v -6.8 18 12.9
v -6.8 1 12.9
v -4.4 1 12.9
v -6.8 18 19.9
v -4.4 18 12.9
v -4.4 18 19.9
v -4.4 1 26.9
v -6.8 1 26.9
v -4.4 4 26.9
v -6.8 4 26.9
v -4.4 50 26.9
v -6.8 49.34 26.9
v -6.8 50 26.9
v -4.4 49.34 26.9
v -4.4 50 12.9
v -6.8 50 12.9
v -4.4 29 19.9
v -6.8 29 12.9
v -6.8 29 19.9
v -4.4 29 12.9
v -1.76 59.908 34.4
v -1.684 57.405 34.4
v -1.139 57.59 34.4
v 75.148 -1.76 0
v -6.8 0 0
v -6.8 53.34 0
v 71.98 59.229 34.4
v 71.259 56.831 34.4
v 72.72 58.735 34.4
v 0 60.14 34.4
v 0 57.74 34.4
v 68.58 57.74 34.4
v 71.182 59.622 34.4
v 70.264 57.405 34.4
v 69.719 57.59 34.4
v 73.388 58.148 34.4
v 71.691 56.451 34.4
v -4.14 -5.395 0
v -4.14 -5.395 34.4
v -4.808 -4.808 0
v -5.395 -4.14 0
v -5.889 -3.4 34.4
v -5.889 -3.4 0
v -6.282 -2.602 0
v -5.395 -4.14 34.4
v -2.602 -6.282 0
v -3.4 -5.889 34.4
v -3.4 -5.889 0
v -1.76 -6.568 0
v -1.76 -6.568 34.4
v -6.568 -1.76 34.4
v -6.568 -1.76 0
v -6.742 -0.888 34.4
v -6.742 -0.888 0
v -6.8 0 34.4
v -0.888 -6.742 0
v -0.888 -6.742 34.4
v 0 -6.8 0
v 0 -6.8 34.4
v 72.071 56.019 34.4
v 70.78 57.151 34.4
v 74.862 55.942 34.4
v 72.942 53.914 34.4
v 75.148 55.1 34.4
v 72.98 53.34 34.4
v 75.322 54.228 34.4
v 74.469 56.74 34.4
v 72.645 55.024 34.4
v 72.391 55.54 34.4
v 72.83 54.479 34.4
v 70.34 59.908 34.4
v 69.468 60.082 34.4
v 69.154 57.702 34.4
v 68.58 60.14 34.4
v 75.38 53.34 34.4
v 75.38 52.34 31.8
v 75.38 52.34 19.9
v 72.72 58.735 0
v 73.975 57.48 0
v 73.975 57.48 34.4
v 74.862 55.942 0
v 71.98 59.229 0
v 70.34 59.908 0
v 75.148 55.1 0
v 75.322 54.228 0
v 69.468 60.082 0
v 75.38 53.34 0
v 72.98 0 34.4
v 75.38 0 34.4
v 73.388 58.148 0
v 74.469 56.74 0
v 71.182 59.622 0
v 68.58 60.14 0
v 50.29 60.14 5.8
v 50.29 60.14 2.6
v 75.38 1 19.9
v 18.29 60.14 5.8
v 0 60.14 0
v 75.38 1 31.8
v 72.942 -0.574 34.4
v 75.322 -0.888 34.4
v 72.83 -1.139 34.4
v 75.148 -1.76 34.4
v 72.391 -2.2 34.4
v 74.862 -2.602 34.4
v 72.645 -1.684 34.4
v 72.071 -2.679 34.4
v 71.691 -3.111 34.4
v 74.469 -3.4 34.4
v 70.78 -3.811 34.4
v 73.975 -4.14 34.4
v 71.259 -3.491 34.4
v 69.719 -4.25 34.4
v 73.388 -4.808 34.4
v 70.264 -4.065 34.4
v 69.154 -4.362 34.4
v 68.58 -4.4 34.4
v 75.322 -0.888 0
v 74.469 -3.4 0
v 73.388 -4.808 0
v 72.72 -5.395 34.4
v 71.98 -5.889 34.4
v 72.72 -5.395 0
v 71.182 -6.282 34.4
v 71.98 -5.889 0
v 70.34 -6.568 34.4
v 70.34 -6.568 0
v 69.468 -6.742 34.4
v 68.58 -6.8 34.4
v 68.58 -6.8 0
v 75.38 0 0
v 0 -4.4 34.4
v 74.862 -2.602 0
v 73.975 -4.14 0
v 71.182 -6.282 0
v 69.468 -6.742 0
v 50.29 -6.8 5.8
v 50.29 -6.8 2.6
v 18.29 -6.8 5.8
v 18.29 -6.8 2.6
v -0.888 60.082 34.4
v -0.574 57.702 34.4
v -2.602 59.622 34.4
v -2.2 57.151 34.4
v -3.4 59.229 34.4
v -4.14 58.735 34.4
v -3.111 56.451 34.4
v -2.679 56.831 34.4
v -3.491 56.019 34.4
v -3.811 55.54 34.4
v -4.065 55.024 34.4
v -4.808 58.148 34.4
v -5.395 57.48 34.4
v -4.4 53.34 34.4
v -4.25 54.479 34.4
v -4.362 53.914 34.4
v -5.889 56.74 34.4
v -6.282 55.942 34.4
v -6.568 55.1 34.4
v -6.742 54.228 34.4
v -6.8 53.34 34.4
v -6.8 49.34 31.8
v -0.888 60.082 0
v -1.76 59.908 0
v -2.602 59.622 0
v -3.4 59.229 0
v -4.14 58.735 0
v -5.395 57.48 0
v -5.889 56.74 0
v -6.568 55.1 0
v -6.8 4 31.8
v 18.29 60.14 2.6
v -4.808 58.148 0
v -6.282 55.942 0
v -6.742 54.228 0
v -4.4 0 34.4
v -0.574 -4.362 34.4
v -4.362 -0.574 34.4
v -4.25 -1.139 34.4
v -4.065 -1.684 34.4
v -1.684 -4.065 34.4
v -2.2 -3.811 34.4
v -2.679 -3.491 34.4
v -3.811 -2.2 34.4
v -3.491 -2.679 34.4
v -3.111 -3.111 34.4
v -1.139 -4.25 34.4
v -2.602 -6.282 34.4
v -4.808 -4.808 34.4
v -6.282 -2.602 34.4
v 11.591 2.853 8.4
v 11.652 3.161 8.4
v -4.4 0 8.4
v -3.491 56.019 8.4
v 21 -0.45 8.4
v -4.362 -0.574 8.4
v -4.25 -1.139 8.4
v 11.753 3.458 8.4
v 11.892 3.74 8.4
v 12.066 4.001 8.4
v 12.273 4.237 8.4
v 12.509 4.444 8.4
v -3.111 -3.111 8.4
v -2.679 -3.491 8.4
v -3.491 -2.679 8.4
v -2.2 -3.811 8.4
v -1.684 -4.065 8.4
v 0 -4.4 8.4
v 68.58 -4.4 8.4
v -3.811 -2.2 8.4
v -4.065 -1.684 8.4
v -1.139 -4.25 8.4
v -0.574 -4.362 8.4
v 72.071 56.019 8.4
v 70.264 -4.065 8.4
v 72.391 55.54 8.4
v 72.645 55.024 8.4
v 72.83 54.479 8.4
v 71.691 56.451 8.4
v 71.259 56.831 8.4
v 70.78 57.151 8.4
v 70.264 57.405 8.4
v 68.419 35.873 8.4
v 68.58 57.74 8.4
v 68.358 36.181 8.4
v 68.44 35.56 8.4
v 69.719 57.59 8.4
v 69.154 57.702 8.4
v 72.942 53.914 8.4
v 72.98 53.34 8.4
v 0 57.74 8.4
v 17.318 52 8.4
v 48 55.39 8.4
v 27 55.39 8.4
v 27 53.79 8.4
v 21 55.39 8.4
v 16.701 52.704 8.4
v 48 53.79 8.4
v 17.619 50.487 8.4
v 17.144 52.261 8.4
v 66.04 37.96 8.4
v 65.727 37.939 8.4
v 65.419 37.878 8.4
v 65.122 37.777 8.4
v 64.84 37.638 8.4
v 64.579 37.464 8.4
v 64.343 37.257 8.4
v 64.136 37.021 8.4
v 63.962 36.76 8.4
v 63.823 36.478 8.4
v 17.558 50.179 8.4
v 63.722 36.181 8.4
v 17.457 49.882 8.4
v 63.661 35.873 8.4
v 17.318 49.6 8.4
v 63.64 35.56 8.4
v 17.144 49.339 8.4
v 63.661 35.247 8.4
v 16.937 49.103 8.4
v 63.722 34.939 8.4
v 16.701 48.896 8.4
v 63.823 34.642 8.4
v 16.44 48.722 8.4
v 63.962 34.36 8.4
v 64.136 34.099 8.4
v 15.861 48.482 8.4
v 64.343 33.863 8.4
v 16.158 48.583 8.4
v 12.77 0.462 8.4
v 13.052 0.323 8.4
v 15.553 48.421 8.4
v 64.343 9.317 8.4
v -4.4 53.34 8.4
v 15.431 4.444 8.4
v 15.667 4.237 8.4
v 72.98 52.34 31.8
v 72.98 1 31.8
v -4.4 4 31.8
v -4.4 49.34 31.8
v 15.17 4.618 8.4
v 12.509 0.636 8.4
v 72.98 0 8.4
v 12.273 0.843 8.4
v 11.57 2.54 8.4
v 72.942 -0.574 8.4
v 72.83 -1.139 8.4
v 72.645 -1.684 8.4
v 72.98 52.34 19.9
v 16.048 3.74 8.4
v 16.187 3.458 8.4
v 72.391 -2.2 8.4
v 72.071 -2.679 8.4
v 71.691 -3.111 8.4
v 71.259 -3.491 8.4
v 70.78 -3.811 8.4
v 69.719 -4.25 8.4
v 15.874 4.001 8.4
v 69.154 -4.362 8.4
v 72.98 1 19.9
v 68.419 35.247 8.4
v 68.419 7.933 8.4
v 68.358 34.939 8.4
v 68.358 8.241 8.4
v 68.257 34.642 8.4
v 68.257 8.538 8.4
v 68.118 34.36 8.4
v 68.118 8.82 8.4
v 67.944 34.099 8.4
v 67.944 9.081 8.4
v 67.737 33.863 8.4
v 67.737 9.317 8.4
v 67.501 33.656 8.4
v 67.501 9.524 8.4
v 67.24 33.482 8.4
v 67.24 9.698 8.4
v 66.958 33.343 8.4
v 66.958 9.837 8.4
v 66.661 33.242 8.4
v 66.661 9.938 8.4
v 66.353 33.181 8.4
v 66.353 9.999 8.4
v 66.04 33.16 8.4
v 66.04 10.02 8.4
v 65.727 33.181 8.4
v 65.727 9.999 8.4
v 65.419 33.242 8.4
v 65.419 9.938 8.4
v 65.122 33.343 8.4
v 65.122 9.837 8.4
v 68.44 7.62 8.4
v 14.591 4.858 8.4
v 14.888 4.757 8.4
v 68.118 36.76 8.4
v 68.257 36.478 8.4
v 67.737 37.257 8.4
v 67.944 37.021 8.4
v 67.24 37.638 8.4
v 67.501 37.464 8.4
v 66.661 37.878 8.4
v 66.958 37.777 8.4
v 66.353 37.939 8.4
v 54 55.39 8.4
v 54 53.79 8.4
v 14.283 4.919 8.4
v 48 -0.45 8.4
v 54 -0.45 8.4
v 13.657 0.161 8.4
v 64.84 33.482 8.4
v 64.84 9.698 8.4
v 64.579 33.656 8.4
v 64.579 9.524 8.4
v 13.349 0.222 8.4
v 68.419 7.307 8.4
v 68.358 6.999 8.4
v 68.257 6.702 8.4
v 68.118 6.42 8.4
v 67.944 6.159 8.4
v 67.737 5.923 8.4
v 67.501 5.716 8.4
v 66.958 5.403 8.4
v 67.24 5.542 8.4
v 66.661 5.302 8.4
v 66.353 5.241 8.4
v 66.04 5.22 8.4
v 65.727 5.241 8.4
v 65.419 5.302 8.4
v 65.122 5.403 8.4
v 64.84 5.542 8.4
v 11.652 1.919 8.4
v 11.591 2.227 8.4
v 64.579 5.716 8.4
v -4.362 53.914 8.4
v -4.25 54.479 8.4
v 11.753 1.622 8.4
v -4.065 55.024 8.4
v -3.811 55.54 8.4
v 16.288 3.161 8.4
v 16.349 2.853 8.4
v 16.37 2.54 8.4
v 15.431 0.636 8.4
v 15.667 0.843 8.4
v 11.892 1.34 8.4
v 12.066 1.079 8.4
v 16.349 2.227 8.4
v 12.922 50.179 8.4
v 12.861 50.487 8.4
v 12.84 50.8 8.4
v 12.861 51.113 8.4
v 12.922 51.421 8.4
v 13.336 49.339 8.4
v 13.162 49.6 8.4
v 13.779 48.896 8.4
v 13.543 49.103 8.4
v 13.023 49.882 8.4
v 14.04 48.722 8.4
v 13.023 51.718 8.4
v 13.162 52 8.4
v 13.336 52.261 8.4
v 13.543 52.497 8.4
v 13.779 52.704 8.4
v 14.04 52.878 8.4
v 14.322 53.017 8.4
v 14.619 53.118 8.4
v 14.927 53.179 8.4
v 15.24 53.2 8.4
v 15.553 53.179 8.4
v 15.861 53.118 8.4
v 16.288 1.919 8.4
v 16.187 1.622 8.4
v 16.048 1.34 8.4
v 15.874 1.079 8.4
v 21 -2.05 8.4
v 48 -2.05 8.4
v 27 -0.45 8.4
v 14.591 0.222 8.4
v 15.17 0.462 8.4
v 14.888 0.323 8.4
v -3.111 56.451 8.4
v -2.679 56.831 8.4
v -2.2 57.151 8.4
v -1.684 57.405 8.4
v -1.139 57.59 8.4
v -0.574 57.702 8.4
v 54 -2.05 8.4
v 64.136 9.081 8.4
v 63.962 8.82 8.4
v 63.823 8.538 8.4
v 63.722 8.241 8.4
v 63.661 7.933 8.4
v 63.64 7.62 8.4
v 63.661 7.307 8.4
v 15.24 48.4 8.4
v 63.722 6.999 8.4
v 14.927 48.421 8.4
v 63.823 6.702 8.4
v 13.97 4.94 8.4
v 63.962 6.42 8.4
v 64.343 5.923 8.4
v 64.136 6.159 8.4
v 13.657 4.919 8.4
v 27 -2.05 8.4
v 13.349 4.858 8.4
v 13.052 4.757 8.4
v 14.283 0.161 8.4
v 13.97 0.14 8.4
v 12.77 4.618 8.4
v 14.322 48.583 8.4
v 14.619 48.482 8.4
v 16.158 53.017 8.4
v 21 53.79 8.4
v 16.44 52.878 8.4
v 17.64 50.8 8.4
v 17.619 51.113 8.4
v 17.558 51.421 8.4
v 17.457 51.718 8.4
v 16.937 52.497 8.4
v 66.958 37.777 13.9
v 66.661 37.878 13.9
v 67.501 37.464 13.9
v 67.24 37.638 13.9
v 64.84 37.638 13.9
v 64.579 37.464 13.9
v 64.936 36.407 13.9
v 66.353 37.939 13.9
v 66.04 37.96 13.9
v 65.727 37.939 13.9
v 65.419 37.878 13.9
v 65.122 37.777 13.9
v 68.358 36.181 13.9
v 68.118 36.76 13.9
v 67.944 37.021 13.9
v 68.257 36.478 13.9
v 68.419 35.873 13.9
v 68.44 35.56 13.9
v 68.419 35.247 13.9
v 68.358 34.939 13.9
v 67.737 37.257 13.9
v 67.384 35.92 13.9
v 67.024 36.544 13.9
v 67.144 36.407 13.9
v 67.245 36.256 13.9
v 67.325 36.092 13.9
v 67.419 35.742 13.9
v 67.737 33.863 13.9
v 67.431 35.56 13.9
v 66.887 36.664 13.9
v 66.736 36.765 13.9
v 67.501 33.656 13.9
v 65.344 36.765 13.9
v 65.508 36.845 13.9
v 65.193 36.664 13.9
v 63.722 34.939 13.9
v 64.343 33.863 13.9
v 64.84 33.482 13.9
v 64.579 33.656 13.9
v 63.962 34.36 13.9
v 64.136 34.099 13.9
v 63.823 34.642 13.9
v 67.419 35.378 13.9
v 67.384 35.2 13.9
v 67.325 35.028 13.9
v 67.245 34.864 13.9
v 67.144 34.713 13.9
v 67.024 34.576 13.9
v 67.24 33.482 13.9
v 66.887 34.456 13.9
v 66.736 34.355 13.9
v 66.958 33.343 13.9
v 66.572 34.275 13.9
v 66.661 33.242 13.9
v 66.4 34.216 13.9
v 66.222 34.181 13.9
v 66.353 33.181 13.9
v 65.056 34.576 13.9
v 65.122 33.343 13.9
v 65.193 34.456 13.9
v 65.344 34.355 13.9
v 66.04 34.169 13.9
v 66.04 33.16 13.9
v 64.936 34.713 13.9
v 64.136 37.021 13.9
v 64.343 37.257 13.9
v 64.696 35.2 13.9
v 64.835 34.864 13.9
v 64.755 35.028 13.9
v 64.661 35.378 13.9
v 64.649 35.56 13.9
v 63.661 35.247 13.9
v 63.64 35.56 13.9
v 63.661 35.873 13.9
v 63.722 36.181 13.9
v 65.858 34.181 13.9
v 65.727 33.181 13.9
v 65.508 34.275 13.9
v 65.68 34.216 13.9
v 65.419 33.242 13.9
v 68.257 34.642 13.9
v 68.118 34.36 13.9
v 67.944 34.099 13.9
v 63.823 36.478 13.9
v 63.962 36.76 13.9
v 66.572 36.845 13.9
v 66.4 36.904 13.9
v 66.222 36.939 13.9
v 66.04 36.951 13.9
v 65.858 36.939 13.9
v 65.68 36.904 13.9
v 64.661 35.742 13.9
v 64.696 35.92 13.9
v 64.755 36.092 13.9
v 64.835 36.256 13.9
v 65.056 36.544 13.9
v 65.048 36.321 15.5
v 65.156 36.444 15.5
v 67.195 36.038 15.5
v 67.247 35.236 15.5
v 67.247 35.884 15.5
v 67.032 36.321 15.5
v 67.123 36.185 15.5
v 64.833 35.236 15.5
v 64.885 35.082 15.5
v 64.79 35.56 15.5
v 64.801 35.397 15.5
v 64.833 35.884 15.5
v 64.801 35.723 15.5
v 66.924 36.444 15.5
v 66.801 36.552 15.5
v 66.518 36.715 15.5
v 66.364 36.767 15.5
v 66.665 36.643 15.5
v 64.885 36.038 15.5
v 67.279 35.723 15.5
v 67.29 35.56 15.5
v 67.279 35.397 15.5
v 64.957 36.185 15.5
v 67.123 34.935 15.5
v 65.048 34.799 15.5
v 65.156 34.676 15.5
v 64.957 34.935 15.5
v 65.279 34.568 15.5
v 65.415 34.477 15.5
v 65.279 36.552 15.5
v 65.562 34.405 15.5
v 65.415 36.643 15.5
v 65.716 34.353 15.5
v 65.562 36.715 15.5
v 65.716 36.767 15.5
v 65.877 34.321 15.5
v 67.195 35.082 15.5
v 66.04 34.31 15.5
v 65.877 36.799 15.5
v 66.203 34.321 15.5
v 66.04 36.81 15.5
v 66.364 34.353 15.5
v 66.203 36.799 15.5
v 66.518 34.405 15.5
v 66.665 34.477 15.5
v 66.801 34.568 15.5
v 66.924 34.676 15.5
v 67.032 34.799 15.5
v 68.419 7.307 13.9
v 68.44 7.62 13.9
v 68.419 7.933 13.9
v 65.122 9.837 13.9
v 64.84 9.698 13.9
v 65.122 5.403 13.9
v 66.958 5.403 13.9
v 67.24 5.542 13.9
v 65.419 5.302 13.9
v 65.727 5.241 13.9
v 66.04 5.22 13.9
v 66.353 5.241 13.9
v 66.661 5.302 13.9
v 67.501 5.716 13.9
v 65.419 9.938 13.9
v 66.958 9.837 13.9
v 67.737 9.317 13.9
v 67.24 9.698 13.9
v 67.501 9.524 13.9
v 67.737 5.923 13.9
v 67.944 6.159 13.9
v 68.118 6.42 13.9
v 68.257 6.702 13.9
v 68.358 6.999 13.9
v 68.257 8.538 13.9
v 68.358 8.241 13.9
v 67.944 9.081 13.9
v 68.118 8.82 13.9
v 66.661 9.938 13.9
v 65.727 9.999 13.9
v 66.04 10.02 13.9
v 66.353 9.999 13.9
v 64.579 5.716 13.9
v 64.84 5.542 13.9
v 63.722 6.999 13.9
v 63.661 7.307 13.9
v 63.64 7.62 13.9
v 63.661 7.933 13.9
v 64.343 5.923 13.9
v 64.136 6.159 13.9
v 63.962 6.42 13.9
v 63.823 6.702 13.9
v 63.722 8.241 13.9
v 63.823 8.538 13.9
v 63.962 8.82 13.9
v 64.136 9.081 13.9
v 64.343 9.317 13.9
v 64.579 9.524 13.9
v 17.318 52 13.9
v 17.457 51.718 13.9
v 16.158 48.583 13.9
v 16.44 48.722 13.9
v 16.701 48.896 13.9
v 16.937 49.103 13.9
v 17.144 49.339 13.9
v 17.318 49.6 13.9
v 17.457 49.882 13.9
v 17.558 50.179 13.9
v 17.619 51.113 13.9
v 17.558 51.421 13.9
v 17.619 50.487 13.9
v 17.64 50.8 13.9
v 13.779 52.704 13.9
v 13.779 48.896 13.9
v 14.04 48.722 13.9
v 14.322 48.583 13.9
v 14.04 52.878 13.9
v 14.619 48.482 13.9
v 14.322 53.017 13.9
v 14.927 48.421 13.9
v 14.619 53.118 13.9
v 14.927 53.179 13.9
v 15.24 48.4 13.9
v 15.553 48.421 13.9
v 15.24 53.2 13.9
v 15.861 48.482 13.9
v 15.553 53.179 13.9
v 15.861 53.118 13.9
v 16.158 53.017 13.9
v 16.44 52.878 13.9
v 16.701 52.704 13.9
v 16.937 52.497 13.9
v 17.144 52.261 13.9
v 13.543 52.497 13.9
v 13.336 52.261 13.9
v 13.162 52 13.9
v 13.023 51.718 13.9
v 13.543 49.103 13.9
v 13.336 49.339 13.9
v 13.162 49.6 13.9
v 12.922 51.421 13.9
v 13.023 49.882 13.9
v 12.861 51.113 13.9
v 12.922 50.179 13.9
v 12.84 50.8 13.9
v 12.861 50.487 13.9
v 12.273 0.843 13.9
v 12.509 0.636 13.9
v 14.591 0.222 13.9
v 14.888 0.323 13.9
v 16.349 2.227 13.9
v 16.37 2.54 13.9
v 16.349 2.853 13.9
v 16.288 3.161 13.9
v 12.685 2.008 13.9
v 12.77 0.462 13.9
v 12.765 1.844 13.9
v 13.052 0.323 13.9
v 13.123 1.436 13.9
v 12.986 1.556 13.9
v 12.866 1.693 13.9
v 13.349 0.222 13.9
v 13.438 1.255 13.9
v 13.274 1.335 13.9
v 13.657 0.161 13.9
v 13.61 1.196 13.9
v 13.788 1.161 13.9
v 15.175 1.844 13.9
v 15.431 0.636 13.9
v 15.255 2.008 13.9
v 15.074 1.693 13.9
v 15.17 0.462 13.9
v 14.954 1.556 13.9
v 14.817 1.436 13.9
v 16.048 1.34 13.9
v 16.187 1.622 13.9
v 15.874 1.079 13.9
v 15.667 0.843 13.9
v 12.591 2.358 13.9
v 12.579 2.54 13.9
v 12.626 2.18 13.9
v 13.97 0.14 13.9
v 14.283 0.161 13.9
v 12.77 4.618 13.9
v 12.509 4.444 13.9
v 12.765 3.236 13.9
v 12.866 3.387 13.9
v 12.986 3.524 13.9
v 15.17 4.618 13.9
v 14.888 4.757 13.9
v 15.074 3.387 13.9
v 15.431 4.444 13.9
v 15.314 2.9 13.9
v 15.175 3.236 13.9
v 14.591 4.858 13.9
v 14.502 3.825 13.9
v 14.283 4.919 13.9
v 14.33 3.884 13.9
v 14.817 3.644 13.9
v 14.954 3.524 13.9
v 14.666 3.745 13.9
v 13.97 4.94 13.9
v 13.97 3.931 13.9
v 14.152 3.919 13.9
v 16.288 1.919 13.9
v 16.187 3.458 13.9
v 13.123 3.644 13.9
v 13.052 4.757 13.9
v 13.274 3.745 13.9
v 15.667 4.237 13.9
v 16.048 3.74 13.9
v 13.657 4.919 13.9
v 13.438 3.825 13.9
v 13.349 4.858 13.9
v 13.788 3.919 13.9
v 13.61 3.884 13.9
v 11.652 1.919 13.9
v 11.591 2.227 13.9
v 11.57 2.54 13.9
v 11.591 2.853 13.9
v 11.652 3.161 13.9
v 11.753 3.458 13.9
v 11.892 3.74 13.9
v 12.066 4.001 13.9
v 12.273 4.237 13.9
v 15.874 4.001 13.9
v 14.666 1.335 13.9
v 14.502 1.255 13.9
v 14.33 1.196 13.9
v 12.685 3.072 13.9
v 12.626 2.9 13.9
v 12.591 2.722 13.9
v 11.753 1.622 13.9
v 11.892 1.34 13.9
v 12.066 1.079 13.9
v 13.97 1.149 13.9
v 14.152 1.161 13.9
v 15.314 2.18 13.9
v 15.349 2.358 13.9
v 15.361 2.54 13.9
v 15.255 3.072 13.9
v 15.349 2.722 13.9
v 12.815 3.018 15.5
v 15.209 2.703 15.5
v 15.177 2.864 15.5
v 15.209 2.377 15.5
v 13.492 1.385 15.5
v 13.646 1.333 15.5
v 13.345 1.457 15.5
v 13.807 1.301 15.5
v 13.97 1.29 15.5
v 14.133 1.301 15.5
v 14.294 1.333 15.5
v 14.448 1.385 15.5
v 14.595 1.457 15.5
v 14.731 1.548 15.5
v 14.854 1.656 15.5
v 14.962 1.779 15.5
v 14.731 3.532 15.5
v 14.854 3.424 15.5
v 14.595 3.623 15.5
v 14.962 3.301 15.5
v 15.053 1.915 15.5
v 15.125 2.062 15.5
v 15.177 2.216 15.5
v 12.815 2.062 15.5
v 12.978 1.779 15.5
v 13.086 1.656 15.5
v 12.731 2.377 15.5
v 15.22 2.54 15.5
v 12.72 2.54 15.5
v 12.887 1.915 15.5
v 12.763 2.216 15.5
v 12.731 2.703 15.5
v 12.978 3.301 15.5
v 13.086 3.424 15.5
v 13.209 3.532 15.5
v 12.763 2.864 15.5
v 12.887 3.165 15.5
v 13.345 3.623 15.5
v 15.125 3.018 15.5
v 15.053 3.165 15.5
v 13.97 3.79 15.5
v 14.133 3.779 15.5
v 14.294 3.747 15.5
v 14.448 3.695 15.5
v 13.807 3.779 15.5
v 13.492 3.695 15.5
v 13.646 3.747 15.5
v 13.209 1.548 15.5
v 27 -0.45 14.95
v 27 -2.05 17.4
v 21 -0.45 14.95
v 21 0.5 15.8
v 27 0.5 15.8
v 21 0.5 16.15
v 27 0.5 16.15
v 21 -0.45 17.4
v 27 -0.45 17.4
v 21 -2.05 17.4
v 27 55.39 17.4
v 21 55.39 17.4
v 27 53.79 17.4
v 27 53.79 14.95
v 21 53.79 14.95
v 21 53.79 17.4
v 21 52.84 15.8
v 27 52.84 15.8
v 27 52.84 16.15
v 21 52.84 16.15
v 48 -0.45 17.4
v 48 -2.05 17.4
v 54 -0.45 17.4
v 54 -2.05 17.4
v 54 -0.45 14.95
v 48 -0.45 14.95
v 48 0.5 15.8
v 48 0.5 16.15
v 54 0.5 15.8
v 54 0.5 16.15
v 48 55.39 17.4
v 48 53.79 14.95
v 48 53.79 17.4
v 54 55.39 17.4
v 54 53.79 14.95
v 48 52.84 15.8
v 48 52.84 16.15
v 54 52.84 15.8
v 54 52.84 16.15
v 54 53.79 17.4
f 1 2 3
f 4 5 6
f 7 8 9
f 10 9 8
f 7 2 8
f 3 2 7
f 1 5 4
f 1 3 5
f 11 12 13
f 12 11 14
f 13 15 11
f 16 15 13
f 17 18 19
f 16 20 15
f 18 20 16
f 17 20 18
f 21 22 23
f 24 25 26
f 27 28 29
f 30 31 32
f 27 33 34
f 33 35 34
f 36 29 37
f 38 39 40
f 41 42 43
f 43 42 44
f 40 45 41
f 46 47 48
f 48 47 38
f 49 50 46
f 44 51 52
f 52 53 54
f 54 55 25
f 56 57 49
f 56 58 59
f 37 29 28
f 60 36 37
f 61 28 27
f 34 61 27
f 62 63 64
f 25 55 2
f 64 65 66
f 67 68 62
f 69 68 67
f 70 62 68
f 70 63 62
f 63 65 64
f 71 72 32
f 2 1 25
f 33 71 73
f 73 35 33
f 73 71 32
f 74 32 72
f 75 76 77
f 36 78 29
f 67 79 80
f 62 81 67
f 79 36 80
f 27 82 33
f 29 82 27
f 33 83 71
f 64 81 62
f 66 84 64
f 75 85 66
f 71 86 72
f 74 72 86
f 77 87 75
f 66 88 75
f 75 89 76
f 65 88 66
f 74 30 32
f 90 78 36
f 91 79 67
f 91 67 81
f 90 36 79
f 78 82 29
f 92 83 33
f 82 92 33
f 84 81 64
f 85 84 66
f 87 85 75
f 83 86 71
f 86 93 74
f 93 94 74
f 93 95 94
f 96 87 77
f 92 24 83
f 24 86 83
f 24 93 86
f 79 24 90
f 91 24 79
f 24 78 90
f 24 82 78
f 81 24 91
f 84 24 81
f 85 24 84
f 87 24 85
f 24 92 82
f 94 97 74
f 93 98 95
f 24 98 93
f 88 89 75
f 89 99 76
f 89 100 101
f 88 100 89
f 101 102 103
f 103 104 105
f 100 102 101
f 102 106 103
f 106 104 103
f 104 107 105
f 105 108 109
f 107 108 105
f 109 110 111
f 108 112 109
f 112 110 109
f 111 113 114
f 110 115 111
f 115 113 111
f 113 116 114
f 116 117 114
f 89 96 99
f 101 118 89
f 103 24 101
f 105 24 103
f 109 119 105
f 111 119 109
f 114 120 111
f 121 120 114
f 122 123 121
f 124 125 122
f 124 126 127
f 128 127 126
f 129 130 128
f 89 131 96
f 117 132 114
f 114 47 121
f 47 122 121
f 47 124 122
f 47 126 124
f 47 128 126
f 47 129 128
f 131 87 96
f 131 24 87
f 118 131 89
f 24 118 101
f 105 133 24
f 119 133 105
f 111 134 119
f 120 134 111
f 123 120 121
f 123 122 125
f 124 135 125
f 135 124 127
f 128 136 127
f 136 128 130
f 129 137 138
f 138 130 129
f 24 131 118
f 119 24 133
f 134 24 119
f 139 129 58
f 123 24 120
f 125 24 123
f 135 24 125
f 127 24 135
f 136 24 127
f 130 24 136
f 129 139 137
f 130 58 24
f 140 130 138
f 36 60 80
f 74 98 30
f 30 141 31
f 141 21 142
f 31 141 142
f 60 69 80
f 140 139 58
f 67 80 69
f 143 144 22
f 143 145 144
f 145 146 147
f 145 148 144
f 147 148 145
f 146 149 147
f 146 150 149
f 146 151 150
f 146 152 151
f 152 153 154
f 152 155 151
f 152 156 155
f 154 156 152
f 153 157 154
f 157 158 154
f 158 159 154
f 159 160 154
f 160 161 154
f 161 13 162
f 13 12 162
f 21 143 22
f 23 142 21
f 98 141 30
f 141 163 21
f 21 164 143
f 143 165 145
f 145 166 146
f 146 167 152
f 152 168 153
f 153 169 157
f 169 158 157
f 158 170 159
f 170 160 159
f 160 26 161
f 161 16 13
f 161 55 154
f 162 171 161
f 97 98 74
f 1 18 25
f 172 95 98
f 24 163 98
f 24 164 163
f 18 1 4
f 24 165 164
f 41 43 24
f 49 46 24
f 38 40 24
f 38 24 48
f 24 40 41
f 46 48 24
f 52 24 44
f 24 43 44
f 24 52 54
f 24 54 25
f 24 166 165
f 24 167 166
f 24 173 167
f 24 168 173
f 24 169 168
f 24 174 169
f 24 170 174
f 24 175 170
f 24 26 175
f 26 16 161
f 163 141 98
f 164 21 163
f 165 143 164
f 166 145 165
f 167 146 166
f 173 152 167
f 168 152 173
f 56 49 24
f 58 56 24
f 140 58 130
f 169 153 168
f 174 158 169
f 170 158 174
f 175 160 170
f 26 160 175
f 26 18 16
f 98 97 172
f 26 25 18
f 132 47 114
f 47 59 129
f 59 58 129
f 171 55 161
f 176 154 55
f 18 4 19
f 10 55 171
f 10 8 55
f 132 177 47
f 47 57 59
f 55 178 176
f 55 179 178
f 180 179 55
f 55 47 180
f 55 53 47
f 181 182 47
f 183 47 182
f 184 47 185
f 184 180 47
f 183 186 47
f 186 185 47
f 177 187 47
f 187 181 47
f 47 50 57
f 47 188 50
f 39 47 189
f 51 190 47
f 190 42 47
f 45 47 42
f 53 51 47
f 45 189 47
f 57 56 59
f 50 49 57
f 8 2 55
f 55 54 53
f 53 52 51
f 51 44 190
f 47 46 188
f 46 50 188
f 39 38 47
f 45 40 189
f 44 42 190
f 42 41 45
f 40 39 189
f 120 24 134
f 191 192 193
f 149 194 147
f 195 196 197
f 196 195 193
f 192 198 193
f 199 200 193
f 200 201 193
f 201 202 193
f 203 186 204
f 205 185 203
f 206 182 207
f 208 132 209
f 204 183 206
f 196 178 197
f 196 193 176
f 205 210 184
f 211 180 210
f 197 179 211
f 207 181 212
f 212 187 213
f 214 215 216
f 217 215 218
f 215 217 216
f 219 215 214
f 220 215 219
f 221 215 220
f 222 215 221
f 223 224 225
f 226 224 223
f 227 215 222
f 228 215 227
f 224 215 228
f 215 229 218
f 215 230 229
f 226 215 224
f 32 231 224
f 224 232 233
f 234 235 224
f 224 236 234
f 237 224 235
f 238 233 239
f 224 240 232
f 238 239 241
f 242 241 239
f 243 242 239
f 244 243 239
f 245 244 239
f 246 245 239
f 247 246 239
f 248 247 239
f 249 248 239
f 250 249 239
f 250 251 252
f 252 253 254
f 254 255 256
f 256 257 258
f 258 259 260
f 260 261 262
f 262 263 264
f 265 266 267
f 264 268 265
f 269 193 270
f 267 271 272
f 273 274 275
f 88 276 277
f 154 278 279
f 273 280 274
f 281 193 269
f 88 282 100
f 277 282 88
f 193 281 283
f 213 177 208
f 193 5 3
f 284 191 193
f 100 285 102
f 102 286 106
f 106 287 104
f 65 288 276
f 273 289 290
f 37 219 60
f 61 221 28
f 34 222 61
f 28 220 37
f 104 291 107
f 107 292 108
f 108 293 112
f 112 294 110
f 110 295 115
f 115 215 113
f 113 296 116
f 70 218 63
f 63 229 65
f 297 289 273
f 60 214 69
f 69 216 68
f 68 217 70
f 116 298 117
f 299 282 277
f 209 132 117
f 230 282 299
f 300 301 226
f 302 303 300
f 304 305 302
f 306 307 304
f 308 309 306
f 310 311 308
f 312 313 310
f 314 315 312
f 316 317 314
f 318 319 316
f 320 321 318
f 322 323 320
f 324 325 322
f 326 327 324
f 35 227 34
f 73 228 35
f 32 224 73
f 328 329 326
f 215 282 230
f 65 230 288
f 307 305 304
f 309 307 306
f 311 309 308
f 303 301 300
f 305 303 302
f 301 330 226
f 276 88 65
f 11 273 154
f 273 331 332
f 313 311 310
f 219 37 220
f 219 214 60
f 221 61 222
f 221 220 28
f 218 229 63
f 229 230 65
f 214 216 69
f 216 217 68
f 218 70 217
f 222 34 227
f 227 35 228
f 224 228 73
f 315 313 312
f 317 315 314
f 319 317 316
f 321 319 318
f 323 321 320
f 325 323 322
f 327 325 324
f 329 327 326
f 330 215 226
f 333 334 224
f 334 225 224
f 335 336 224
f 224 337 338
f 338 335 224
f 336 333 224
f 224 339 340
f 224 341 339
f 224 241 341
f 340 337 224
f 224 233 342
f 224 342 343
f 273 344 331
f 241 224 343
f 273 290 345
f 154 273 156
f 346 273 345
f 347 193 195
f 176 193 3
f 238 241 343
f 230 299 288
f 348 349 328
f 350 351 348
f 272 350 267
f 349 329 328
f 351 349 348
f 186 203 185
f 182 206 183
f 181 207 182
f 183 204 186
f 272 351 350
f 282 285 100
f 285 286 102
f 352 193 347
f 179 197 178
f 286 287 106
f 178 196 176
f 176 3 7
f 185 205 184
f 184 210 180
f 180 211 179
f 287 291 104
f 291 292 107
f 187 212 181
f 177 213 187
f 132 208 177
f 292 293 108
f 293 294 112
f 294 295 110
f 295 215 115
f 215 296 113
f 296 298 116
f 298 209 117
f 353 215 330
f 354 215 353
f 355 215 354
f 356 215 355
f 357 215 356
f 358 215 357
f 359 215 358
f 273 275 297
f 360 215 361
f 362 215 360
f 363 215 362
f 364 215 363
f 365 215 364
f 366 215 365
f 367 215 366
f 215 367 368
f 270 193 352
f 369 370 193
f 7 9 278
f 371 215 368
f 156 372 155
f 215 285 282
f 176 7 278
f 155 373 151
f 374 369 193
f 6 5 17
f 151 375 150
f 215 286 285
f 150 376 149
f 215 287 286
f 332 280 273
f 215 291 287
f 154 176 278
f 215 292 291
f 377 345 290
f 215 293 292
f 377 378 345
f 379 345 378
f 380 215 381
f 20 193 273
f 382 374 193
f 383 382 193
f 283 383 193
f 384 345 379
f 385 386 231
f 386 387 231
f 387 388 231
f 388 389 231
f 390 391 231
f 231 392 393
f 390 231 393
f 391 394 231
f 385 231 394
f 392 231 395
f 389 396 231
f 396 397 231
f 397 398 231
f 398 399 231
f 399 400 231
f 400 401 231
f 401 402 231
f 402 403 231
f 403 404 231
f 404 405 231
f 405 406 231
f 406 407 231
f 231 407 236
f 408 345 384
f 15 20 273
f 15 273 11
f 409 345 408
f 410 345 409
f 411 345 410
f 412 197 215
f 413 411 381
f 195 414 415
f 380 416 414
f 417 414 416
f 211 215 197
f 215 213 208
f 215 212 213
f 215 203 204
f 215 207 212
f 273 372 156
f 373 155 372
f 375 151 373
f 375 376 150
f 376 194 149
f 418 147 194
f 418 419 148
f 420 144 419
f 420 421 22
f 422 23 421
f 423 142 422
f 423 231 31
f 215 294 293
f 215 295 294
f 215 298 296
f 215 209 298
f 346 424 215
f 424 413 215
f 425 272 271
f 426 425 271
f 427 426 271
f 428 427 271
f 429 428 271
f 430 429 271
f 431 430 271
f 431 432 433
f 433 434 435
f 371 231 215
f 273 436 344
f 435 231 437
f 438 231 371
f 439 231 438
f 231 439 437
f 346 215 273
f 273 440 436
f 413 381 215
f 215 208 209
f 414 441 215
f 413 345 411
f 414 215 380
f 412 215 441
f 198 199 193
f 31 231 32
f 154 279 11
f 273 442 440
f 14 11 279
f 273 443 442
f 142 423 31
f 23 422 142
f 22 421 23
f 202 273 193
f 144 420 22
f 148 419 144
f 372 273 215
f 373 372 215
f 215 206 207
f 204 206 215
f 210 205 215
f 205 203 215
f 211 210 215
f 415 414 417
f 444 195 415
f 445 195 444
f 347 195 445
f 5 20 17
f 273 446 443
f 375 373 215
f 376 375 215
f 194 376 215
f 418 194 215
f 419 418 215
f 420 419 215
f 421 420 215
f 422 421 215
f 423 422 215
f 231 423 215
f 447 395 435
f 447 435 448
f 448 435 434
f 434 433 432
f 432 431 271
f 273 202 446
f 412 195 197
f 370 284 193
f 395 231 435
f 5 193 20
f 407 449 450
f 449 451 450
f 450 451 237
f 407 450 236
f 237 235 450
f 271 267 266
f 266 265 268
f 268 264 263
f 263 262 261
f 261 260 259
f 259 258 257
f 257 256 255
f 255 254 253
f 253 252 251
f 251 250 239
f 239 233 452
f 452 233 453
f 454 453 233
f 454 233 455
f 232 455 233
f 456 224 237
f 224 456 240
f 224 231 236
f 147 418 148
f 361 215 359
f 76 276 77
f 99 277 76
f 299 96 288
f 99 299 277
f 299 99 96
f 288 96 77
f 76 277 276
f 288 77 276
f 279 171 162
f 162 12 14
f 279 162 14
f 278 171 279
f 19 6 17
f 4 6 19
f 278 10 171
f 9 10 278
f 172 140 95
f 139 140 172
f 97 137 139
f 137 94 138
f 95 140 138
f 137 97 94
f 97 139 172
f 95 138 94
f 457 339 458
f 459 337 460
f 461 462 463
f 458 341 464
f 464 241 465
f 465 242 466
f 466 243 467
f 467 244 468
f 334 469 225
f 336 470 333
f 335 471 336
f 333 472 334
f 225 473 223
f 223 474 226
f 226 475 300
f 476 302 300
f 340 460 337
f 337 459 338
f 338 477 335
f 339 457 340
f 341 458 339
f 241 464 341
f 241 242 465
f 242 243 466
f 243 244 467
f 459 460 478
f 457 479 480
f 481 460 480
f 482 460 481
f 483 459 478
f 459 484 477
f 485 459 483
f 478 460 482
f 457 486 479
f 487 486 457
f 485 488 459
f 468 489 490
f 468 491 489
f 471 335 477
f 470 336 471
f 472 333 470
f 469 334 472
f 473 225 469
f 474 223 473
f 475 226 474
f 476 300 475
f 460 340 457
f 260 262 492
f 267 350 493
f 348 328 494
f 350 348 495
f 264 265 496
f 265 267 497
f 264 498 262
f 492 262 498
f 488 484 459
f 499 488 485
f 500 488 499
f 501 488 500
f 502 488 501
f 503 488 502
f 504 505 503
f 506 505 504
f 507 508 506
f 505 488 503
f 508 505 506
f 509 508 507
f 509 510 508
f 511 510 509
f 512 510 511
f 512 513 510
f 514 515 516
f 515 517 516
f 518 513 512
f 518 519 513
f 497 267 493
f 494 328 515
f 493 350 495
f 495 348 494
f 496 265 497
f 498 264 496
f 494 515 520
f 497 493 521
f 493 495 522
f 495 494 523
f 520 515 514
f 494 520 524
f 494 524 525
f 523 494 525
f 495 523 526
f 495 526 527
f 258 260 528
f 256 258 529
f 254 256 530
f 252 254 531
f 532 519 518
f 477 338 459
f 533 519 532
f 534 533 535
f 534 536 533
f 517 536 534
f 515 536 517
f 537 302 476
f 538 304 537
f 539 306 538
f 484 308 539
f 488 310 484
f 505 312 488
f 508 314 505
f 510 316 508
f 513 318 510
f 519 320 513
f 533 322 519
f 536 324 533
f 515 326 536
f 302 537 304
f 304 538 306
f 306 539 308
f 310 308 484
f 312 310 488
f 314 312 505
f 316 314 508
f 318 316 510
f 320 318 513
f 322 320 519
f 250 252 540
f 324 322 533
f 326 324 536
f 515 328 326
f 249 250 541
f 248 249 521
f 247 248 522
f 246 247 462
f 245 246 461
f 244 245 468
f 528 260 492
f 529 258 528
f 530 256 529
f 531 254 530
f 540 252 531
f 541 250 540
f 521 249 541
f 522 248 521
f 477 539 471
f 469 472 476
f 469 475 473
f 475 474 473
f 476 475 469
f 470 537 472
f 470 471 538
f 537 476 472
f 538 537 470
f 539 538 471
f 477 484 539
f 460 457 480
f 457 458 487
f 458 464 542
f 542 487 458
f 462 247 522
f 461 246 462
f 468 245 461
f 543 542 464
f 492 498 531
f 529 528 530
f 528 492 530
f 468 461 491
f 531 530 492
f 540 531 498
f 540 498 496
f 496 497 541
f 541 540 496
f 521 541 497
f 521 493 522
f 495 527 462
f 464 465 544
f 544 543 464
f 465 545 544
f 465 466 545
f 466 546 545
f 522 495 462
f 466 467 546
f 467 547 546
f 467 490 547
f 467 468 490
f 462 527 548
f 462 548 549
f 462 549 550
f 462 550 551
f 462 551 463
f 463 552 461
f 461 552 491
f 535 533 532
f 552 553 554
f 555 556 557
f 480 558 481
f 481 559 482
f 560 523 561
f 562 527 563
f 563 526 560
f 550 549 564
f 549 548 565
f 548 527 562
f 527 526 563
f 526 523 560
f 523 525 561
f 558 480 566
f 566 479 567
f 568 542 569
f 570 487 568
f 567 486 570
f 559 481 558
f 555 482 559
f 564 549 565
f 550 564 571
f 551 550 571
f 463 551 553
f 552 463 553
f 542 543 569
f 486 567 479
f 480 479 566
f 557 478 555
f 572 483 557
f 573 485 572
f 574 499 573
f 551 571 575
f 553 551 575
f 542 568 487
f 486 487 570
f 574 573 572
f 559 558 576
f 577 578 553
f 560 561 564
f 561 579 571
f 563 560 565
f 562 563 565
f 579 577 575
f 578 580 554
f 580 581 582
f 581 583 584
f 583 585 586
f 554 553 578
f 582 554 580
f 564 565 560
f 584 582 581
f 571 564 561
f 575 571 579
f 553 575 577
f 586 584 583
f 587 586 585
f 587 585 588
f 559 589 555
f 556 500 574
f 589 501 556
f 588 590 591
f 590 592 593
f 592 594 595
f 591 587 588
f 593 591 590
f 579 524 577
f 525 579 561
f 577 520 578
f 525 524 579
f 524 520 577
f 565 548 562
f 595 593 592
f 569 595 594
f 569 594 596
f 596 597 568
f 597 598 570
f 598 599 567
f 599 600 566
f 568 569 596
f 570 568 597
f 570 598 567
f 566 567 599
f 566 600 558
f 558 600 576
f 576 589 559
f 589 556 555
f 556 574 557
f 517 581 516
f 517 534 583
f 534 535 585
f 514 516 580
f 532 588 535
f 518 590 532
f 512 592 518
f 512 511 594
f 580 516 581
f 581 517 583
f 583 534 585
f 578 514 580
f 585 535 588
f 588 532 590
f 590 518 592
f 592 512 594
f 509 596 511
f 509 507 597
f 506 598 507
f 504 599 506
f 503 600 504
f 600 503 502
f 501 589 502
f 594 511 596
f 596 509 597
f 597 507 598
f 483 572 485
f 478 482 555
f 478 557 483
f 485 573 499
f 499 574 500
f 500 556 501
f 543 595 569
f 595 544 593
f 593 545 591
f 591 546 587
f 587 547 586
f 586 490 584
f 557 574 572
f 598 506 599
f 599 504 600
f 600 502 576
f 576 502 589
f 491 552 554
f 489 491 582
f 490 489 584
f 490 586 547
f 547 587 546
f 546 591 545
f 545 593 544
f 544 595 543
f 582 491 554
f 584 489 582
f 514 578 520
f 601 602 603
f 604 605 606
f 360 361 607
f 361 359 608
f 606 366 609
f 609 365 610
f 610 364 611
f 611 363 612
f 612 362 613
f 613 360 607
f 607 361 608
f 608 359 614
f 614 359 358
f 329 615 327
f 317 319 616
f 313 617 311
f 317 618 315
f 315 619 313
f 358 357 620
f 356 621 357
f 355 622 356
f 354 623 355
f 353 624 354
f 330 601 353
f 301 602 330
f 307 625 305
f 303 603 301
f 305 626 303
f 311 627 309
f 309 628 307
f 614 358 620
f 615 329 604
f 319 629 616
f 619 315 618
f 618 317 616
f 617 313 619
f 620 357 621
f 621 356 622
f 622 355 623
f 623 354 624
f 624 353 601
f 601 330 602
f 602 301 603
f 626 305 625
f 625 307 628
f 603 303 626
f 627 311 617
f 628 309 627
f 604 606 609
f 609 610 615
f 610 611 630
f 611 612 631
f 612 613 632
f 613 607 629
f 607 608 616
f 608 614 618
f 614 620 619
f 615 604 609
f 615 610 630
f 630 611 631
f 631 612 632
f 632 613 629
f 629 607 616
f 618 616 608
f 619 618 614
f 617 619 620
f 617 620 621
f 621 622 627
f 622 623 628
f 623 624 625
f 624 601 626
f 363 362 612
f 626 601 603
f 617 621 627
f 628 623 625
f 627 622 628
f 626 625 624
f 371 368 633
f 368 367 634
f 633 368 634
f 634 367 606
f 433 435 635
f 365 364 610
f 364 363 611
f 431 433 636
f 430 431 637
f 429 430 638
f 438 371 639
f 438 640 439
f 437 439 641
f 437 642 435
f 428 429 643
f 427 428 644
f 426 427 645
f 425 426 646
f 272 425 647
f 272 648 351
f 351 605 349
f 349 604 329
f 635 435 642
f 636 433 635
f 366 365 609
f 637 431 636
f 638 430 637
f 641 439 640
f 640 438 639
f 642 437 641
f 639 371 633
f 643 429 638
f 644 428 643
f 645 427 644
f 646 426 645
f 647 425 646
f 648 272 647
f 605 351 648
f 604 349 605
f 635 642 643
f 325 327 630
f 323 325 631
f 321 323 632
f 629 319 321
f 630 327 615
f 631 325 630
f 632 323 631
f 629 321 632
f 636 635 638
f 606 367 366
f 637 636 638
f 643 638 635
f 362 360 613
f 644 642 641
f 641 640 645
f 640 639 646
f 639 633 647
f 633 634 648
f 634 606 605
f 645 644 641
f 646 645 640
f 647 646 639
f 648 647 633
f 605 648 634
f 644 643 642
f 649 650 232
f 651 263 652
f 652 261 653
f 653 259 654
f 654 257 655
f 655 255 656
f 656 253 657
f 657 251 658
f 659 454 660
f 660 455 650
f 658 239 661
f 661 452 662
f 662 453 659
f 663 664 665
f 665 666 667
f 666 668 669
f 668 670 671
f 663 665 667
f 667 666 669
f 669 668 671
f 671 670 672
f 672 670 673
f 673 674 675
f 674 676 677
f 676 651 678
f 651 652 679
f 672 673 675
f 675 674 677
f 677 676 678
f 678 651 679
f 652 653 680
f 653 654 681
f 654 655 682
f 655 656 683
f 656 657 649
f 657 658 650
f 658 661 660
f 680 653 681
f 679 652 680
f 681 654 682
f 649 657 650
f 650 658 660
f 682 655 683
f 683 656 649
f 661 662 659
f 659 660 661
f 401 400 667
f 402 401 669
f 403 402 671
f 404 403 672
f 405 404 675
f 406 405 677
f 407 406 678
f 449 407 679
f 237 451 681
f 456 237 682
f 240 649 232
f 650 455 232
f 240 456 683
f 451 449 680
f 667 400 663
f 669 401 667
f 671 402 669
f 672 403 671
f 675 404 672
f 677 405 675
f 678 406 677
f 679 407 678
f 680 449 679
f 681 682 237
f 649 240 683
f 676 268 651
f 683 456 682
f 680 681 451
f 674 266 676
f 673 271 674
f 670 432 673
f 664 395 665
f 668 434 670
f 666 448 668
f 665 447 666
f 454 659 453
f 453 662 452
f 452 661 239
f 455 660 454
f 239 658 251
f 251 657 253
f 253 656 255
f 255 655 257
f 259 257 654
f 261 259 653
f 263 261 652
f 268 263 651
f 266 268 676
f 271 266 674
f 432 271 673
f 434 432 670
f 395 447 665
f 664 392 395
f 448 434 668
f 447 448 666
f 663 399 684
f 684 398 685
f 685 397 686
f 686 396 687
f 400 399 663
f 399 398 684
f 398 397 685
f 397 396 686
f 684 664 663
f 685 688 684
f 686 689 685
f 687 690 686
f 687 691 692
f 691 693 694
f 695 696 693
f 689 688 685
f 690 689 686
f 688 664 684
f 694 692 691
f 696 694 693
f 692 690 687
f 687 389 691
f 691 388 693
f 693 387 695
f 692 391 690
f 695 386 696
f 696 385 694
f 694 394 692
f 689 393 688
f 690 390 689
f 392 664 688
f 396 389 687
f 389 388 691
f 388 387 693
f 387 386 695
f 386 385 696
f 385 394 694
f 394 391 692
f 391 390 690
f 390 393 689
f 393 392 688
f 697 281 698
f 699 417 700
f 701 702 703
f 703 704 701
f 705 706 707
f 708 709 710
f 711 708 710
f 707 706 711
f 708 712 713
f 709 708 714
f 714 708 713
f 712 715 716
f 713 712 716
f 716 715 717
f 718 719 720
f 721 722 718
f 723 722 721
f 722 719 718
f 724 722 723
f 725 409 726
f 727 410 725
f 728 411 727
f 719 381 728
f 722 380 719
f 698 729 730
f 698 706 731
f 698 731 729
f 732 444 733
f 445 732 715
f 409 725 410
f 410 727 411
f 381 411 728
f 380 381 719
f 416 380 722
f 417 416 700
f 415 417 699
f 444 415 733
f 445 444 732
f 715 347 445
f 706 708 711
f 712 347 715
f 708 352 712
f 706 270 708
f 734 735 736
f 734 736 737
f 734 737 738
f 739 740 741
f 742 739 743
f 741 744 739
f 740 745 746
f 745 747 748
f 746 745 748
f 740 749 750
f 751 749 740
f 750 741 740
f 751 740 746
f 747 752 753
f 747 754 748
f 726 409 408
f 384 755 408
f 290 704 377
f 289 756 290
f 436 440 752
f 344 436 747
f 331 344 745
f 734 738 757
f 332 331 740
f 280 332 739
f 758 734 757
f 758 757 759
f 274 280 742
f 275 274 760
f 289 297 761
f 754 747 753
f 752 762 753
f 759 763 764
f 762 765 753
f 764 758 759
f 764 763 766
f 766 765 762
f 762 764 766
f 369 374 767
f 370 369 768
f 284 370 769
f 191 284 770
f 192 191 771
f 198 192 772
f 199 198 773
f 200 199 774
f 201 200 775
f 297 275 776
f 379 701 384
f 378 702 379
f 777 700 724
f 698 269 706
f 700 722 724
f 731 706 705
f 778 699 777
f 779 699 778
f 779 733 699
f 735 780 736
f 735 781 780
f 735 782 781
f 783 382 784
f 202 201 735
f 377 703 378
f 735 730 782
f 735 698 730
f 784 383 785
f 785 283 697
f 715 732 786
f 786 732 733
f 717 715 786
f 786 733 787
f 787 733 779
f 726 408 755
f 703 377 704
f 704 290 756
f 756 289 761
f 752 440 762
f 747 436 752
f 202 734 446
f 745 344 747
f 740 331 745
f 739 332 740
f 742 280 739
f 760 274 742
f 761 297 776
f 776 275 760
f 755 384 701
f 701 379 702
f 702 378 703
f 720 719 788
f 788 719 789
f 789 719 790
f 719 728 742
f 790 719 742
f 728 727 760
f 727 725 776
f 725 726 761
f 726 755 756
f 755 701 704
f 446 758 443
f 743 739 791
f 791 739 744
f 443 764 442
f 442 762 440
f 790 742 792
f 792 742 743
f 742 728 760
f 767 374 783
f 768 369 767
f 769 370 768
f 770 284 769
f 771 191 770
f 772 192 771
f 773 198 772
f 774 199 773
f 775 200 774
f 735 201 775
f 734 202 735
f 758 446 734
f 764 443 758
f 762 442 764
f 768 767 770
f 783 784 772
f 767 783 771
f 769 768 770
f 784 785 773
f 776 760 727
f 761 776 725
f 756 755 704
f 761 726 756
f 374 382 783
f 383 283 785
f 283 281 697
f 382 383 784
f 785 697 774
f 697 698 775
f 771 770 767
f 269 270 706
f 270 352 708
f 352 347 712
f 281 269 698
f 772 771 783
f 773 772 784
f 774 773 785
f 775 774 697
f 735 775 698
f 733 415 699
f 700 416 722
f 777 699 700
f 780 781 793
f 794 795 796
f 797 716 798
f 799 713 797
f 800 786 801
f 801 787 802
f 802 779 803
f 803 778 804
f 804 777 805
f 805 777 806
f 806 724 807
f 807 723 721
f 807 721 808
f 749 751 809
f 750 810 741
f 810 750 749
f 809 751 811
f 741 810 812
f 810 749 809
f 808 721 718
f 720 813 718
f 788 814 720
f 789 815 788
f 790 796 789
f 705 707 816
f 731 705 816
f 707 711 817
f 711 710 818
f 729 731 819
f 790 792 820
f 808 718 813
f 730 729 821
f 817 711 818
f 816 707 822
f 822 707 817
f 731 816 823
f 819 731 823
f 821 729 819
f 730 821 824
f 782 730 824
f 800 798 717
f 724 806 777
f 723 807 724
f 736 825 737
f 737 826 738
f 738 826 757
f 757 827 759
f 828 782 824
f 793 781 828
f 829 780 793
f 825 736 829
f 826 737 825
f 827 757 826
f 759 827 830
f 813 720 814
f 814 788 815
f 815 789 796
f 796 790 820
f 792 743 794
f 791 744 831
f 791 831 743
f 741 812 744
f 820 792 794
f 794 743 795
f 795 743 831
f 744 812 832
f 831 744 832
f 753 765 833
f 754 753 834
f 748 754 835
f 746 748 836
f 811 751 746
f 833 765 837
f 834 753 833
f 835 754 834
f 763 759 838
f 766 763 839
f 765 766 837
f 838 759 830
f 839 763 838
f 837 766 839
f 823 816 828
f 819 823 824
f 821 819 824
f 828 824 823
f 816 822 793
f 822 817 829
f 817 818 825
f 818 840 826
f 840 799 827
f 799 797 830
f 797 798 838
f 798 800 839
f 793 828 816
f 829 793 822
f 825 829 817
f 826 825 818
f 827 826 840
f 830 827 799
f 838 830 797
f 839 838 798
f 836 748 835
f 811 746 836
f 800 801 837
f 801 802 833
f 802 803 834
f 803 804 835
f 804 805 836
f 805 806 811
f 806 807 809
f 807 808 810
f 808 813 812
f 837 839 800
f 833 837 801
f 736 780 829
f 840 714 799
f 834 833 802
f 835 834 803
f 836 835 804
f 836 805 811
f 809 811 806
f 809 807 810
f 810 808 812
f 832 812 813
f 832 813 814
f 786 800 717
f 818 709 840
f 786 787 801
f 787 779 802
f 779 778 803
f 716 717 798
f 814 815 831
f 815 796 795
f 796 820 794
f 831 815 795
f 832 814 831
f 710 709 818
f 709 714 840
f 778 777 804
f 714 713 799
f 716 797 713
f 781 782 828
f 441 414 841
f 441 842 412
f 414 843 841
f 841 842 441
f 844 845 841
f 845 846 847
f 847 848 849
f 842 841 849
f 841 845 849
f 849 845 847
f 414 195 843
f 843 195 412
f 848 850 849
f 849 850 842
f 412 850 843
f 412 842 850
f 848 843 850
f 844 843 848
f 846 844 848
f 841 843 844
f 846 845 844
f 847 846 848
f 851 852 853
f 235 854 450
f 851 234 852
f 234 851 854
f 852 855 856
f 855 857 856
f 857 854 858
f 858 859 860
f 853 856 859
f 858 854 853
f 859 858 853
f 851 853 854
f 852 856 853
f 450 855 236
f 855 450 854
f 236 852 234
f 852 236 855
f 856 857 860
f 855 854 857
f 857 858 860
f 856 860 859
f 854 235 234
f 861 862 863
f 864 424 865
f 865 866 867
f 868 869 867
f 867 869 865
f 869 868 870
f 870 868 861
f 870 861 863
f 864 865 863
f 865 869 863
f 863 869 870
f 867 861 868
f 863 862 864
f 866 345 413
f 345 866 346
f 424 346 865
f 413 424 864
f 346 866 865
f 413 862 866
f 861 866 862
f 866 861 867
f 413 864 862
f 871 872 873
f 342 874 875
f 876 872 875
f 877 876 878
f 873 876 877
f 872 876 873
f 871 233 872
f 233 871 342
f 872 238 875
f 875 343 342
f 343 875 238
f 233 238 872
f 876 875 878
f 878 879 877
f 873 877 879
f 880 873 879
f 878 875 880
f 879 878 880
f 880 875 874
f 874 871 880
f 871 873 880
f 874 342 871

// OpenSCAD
// UNO Rev3, PCB de 1.6 mm nominal. El shield permanece por encima de las uñas.
// Túnel dorsal transversal para una correa de extremo libre. Imprimir sobre la base.
// Fuente de los centros de los agujeros: UNO-TH_Rev3e.brd, Arduino.
ancho_correa = 30;
grosor_correa = 2;
largo = 68.58;
ancho = 53.34;
grosor_placa = 1.6;
altura_apoyo = 5.5;
juego_lateral = 0.45;
grosor_una = 1.6;
$fn = 48;
// Espacio detrás de las uñas para flexionar al insertar el Uno.
espacio = 4.4;
pared = 2.4;
margen = espacio + pared;
alto_pared = 26; // Desde el piso interior hasta el borde frontal.
base = 2.6 + grosor_correa + 1.2 + 2.6;
nivel = base + altura_apoyo;
agujeros = [[66.04,35.56],[66.04,7.62],[15.24,50.8],[13.97,2.54]];
assert(ancho_correa+2 < largo-12);
// Clip con rampa de entrada que abraza el canto de la placa inferior.
module una(x){
    d = juego_lateral;
    w = grosor_una;
    z = nivel + grosor_placa + 0.3;
    translate([x,0,0]) multmatrix([[0,0,1,0],[1,0,0,0],[0,1,0,0],[0,0,0,1]])
        linear_extrude(6) polygon([[-d-w,base-0.2],[-d,base-0.2],
            [-d,z-0.85],[0.5,z],[0.5,z+0.35],[-d,z+1.6],[-d-w,z+1.6]]);
}
module contorno(r,h){
    hull() for(x=[0,largo],y=[0,ancho])
        translate([x,y,0]) cylinder(r=r,h=h);
}
module caja(){
    difference(){
        contorno(margen,base+alto_pared);
        translate([0,0,base]) contorno(espacio,alto_pared+1);
        // Hombro: rebaje para los cuatro TRS, con dintel inferior y esquinas enteras.
        translate([largo-1,1,nivel+6])
            cube([margen+2,ancho-2,base+alto_pared-2.6-(nivel+6)]);
        // Extremo opuesto: los dos TRS sobre el Uno.
        translate([-margen-1,4,nivel+6])
            cube([margen+2,ancho-8,base+alto_pared-2.6-(nivel+6)]);
        // Ventanas USB-B y alimentación. Bocas accesibles con el shield puesto.
        for (rango=[[1,18],[29,50]])
            translate([-margen-1,rango[0],nivel-1])
                cube([margen+2,rango[1]-rango[0],14]);
        translate([(largo-ancho_correa-2)/2,-margen-1,2.6])
            cube([ancho_correa+2,ancho+2*margen+2,grosor_correa+1.2]);
    }
}
union(){
    caja();
    for(i=[0:3]){
        p=agujeros[i];
        translate([p[0],p[1],base-0.2]) cylinder(d=4.8,h=altura_apoyo+0.2);
        if(i==0 || i==3)
            translate([p[0],p[1],nivel-0.1]) cylinder(d1=2.8,d2=2.5,h=grosor_placa+0.1);
    }
    for(x=[21,48]){
        una(x);
        translate([0,ancho,0]) mirror([0,1,0]) una(x);
    }
}
